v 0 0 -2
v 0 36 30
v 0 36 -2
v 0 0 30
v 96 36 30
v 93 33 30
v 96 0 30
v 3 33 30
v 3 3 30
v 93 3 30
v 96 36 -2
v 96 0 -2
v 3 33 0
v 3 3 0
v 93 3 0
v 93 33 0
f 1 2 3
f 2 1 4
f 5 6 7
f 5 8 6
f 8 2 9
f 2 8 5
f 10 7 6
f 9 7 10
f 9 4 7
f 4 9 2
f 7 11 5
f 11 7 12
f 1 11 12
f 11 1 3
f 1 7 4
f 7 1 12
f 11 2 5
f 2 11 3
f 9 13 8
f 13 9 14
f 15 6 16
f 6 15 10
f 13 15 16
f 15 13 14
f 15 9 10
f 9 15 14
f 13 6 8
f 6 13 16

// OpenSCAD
//Taken from Python key label script...
BUTTON_COUNT_X=5;
BUTTON_COUNT_Y=8;

BUTTON_WIDTH=120;
BUTTON_HEIGHT=80;
BUTTON_GAP_HORZ=32.4;
BUTTON_GAP_VERT=72.4;
//BUTTON_BORDER_HORZ=20;
//BUTTON_BORDER_VERT=20;

//Added here
BUTTON_THICKNESS=40;

BUTTON_LIP_WIDTH=0; //harder to mold
BUTTON_LIP_HEIGHT=10;
BUTTON_LIP_THICKNESS=12;

SPINE_WIDTH=5*BUTTON_WIDTH+4*BUTTON_GAP_HORZ+BUTTON_LIP_WIDTH*2;
SPINE_HEIGHT=40;
SPINE_THICKNESS=BUTTON_LIP_THICKNESS;

SPRUE_WIDTH=12;
SPRUE_LENGTH=100;
SPRUE_THICKNESS=12;
SPRUE_X_OFFSET=15;
SPRUE_Y_OFFSET=0;

MOLD_BOTTOM_THICKNESS=20;
MOLD_WALL_THICKNESS=30;
MOLD_INNER_WIDTH=900;
MOLD_INNER_HEIGHT=300;
MOLD_INNER_THICKNESS=300;

scale([0.1,0.1,0.1])
{
  union()
  {
    //translate([100,120,0])
      //key_row();
    mold_box();
  }
}


module mold_box()
{
  difference()
  {
    translate([0,0,-MOLD_BOTTOM_THICKNESS])
    cube([MOLD_INNER_WIDTH+
      MOLD_WALL_THICKNESS*2,
      MOLD_INNER_HEIGHT+MOLD_WALL_THICKNESS*2,
      MOLD_BOTTOM_THICKNESS+MOLD_INNER_THICKNESS]);
    translate([MOLD_WALL_THICKNESS,
      MOLD_WALL_THICKNESS,0])
    cube([MOLD_INNER_WIDTH,MOLD_INNER_HEIGHT,
      MOLD_INNER_THICKNESS+
      MOLD_BOTTOM_THICKNESS]);
  }
}


module key_row()
{

union()
{

for (i=[0:BUTTON_COUNT_X-1])
{
  translate([(BUTTON_WIDTH+BUTTON_GAP_HORZ)*i,
  0,0])
  {
    union()
    {

      //Bottom lip
      //(note lip on bottom AND top!!!)
      cube([BUTTON_LIP_WIDTH*2+BUTTON_WIDTH,
        BUTTON_LIP_HEIGHT*2+BUTTON_HEIGHT,
        BUTTON_LIP_THICKNESS]);

      //Button
      translate([BUTTON_LIP_WIDTH,
        BUTTON_LIP_HEIGHT,0])
      cube([BUTTON_WIDTH,
        BUTTON_HEIGHT,
        BUTTON_THICKNESS]);

      //Try with one sided dump mold first
      /*
      //Sprue
      translate([SPRUE_X_OFFSET,
        SPRUE_Y_OFFSET,0])
      rotate([0,0,150])
      cube([SPRUE_WIDTH,SPRUE_LENGTH,
        SPRUE_THICKNESS]);
      */
    }
  }
}

//Spine
translate([0,BUTTON_LIP_HEIGHT*2+BUTTON_HEIGHT,
  0])
cube([SPINE_WIDTH, SPINE_HEIGHT,
  SPINE_THICKNESS]);

}

}
